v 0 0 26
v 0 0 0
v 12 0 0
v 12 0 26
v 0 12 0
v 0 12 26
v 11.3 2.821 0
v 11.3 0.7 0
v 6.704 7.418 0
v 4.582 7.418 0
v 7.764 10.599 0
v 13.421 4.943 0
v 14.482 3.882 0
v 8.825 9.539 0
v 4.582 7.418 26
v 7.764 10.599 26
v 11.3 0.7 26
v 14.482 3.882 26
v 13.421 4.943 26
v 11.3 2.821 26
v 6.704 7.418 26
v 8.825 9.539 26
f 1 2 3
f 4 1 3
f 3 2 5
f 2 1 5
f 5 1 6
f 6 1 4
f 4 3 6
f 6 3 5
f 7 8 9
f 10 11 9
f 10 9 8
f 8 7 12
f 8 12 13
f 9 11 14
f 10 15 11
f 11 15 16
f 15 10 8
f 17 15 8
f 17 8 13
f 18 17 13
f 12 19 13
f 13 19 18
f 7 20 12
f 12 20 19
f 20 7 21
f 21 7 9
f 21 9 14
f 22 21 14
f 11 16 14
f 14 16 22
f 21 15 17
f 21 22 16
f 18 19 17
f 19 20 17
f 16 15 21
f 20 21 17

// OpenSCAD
translate([12-0.7,0.7,0]) rotate(a=[0,0,45]) translate([1.5,0,0])union(){
cube([3,1.5,26]);
translate([0,6.5+1.5,0]) cube([3,1.5,26]);
translate([-1.5,0,0]) cube([1.5,6.5+1.5+1.5,26]);
};


difference(){cube([12,12,26]);
translate([12,0,0]) rotate(a=[0,0,45])cube([17,17,26]);
};
